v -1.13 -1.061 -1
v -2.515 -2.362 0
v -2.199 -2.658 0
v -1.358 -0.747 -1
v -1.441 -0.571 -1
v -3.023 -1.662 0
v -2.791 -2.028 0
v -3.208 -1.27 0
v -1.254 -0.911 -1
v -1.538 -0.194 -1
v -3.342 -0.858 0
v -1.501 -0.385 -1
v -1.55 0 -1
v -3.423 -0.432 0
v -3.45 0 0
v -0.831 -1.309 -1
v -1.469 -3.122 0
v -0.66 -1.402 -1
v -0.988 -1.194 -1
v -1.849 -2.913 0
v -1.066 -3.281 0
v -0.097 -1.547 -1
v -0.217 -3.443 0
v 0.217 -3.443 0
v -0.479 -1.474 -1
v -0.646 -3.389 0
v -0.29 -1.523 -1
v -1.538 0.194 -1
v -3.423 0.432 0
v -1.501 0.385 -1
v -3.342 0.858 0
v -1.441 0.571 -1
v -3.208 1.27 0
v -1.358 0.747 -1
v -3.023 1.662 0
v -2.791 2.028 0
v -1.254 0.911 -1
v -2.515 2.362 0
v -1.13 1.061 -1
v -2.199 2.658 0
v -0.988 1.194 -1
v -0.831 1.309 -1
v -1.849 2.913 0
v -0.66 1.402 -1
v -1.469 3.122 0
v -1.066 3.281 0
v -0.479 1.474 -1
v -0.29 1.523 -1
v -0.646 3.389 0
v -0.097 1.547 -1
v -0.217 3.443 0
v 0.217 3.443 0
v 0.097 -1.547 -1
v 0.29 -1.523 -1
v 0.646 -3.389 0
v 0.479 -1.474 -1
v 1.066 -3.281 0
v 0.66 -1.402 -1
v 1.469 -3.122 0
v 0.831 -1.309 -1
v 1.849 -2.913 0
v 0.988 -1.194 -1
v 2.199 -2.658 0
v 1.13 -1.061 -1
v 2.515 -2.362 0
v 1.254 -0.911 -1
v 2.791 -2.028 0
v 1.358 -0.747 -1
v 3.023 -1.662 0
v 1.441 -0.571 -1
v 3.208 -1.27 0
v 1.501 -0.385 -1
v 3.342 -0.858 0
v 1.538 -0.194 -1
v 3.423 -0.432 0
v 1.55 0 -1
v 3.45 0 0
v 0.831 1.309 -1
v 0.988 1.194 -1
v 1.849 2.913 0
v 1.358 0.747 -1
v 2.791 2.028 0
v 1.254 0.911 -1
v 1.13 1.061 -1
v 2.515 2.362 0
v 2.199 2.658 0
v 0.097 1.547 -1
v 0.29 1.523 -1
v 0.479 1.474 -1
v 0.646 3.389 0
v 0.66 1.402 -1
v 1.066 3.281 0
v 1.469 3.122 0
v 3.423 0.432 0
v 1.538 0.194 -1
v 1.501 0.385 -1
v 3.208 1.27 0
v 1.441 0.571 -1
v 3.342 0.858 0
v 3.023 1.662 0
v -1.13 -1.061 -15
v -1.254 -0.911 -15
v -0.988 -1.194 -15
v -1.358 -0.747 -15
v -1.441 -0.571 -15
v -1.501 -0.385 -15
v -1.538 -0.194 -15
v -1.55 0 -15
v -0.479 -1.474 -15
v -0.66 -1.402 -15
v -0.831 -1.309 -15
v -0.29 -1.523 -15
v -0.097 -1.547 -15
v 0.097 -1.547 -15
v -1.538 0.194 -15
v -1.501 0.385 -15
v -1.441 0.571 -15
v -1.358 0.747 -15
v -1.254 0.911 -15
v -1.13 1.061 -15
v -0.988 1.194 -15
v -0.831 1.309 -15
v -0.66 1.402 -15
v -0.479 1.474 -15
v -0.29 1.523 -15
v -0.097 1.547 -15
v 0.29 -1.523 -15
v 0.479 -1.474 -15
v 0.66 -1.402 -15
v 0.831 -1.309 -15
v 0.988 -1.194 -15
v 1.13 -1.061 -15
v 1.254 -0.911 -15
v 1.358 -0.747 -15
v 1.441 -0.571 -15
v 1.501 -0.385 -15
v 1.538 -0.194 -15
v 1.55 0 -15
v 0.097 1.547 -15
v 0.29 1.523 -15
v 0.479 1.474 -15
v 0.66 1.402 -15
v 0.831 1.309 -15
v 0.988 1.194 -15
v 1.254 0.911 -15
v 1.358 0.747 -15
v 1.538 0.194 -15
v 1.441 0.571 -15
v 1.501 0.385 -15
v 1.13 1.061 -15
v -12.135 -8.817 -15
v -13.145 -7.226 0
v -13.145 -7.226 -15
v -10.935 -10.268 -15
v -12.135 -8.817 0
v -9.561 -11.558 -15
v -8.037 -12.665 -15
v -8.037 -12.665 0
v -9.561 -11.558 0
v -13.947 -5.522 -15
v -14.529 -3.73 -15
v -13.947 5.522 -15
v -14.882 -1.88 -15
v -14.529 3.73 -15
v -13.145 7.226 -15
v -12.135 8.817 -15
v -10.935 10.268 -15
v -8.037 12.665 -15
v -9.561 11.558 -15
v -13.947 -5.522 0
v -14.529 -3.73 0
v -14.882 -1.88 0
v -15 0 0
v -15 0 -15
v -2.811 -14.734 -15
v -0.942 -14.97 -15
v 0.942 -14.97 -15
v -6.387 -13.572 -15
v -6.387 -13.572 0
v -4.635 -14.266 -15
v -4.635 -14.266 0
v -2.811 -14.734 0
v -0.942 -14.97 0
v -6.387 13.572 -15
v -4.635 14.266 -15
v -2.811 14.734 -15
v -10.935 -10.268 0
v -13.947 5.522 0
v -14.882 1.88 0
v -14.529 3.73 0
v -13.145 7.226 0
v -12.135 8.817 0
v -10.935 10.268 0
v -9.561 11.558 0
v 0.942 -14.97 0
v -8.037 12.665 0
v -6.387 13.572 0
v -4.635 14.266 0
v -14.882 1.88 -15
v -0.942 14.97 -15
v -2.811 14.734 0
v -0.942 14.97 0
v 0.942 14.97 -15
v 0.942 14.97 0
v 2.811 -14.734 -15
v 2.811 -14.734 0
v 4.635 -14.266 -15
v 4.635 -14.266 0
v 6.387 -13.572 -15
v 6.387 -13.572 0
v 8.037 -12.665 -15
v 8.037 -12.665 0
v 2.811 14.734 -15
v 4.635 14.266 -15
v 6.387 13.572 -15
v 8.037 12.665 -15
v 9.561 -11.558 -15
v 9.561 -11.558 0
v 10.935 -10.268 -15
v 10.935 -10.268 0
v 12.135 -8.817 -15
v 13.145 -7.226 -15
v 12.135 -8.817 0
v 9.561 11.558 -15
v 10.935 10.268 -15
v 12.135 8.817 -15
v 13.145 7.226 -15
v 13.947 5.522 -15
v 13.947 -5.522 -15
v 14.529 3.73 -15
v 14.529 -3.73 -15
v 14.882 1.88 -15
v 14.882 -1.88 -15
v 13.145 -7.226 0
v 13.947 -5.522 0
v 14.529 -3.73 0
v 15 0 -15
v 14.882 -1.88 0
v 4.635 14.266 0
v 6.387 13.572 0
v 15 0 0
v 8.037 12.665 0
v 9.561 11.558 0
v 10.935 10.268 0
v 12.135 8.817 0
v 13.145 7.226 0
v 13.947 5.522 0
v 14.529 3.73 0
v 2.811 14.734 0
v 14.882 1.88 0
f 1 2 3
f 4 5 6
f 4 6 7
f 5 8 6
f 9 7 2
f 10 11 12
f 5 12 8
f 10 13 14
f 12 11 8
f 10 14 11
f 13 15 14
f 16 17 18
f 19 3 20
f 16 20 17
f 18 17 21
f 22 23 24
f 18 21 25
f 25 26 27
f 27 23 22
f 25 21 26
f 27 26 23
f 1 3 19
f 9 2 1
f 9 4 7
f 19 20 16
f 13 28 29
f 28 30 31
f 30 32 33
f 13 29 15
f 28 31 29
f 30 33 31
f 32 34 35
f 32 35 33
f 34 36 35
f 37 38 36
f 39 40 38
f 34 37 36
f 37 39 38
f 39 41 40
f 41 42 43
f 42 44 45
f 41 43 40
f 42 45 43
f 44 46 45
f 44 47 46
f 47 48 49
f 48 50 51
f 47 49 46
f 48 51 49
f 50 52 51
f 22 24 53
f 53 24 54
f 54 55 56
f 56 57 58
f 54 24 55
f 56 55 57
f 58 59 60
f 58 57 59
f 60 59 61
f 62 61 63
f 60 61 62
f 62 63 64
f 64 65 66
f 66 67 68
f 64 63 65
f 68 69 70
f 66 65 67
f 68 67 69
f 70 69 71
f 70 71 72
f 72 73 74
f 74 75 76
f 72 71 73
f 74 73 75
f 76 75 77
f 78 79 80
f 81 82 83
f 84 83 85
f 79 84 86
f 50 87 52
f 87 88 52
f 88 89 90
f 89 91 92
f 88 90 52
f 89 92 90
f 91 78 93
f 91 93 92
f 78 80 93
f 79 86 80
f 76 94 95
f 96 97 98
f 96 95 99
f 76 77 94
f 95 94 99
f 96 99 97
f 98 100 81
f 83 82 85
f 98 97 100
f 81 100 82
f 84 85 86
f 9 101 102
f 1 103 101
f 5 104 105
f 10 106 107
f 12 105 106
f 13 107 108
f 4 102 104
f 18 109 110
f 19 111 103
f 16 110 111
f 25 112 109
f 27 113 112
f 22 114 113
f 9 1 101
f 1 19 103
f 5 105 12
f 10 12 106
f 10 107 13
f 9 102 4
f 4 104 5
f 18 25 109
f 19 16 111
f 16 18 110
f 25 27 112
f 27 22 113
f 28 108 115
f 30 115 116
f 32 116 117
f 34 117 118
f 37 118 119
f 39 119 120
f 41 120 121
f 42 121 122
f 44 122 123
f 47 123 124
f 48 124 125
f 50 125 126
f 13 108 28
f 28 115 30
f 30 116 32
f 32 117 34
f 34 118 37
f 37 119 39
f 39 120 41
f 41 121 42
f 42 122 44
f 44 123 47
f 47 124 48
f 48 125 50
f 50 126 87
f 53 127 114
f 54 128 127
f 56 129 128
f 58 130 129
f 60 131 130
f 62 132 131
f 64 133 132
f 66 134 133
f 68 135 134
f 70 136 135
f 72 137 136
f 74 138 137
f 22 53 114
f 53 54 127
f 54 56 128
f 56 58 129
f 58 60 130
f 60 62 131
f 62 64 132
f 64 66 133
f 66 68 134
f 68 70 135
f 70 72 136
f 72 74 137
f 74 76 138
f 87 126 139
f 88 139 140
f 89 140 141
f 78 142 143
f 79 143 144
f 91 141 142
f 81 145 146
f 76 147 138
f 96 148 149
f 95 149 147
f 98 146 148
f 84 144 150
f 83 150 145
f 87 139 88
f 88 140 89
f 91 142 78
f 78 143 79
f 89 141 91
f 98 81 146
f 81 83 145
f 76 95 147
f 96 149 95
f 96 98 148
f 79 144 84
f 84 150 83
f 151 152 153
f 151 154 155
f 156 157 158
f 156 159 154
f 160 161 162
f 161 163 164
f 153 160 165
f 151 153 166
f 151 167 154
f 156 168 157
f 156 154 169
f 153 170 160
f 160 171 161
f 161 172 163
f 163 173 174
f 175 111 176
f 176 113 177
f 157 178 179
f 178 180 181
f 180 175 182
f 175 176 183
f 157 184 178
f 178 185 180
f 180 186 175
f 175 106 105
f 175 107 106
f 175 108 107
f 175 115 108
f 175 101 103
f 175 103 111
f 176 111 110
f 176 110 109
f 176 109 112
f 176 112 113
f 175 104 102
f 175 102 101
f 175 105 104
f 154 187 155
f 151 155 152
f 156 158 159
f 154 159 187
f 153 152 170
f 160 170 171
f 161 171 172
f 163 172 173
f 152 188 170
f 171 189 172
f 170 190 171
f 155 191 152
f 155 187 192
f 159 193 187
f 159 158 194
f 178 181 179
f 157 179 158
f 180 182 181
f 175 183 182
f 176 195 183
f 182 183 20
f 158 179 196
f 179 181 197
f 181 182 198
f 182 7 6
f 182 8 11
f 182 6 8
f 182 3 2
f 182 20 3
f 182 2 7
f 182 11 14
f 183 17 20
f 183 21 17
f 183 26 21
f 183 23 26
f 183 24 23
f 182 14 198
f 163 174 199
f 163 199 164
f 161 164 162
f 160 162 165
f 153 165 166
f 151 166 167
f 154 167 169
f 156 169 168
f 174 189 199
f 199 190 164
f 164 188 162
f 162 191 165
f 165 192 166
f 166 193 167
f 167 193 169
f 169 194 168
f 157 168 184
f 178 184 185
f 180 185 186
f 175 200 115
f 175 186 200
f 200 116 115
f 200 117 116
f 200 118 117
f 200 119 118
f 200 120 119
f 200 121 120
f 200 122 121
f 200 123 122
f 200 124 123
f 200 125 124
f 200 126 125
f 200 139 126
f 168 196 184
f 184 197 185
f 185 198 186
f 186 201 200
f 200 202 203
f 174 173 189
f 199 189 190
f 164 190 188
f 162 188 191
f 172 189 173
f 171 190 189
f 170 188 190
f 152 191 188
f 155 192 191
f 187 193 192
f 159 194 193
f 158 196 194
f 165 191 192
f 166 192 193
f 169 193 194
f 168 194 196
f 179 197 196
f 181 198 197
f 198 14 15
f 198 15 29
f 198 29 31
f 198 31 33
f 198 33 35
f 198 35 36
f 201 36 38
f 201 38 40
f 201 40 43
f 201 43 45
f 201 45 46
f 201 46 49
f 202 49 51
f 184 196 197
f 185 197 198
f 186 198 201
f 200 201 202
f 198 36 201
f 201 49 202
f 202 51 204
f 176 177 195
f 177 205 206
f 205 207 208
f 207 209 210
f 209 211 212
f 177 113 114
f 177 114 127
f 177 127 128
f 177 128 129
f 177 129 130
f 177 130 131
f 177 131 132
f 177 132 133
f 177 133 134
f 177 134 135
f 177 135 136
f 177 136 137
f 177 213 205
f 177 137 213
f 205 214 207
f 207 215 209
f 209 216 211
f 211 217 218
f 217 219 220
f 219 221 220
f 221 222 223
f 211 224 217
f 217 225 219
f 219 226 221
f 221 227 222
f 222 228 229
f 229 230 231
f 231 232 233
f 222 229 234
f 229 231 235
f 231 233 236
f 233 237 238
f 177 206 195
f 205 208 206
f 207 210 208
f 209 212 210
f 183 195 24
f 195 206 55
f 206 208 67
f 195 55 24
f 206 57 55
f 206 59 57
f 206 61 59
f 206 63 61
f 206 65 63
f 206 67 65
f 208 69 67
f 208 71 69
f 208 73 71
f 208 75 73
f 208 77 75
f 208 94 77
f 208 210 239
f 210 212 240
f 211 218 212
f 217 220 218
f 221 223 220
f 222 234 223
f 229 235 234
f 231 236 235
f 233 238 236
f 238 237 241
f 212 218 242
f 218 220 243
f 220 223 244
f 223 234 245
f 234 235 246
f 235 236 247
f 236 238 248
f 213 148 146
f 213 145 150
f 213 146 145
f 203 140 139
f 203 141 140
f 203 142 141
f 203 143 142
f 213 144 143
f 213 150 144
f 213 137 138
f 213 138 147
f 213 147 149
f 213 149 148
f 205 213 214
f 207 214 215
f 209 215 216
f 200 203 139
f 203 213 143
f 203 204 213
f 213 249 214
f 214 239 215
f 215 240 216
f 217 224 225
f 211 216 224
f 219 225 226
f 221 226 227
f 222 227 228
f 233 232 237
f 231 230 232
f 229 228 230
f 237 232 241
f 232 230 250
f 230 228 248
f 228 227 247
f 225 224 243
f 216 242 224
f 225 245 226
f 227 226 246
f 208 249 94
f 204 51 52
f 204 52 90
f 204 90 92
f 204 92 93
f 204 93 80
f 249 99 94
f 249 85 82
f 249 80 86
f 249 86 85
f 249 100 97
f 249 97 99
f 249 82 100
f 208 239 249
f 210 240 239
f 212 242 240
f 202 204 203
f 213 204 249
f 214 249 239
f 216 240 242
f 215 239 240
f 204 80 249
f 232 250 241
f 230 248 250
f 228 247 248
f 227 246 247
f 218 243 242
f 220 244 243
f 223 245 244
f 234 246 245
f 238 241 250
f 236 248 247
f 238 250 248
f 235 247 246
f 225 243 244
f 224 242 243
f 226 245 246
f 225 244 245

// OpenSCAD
$fn = 50;

difference() {
	union() {
		translate(v = [0, 0, -15.0]) {
			cylinder(h = 15, r = 15.0);
		}
	}
	union() {
		translate(v = [0, 0, 0]) {
			rotate(a = [0, 0, 0]) {
				difference() {
					union() {
						translate(v = [0, 0, -18.0]) {
							cylinder(h = 18, r = 1.25);
						}
						translate(v = [0, 0, -1.0]) {
							cylinder(h = 1.0, r1 = 1.55, r2 = 3.45);
						}
						translate(v = [0, 0, -18.0]) {
							cylinder(h = 18, r = 1.55);
						}
						translate(v = [0, 0, -18.0]) {
							cylinder(h = 18, r = 1.25);
						}
					}
					union();
				}
			}
		}
	}
}
